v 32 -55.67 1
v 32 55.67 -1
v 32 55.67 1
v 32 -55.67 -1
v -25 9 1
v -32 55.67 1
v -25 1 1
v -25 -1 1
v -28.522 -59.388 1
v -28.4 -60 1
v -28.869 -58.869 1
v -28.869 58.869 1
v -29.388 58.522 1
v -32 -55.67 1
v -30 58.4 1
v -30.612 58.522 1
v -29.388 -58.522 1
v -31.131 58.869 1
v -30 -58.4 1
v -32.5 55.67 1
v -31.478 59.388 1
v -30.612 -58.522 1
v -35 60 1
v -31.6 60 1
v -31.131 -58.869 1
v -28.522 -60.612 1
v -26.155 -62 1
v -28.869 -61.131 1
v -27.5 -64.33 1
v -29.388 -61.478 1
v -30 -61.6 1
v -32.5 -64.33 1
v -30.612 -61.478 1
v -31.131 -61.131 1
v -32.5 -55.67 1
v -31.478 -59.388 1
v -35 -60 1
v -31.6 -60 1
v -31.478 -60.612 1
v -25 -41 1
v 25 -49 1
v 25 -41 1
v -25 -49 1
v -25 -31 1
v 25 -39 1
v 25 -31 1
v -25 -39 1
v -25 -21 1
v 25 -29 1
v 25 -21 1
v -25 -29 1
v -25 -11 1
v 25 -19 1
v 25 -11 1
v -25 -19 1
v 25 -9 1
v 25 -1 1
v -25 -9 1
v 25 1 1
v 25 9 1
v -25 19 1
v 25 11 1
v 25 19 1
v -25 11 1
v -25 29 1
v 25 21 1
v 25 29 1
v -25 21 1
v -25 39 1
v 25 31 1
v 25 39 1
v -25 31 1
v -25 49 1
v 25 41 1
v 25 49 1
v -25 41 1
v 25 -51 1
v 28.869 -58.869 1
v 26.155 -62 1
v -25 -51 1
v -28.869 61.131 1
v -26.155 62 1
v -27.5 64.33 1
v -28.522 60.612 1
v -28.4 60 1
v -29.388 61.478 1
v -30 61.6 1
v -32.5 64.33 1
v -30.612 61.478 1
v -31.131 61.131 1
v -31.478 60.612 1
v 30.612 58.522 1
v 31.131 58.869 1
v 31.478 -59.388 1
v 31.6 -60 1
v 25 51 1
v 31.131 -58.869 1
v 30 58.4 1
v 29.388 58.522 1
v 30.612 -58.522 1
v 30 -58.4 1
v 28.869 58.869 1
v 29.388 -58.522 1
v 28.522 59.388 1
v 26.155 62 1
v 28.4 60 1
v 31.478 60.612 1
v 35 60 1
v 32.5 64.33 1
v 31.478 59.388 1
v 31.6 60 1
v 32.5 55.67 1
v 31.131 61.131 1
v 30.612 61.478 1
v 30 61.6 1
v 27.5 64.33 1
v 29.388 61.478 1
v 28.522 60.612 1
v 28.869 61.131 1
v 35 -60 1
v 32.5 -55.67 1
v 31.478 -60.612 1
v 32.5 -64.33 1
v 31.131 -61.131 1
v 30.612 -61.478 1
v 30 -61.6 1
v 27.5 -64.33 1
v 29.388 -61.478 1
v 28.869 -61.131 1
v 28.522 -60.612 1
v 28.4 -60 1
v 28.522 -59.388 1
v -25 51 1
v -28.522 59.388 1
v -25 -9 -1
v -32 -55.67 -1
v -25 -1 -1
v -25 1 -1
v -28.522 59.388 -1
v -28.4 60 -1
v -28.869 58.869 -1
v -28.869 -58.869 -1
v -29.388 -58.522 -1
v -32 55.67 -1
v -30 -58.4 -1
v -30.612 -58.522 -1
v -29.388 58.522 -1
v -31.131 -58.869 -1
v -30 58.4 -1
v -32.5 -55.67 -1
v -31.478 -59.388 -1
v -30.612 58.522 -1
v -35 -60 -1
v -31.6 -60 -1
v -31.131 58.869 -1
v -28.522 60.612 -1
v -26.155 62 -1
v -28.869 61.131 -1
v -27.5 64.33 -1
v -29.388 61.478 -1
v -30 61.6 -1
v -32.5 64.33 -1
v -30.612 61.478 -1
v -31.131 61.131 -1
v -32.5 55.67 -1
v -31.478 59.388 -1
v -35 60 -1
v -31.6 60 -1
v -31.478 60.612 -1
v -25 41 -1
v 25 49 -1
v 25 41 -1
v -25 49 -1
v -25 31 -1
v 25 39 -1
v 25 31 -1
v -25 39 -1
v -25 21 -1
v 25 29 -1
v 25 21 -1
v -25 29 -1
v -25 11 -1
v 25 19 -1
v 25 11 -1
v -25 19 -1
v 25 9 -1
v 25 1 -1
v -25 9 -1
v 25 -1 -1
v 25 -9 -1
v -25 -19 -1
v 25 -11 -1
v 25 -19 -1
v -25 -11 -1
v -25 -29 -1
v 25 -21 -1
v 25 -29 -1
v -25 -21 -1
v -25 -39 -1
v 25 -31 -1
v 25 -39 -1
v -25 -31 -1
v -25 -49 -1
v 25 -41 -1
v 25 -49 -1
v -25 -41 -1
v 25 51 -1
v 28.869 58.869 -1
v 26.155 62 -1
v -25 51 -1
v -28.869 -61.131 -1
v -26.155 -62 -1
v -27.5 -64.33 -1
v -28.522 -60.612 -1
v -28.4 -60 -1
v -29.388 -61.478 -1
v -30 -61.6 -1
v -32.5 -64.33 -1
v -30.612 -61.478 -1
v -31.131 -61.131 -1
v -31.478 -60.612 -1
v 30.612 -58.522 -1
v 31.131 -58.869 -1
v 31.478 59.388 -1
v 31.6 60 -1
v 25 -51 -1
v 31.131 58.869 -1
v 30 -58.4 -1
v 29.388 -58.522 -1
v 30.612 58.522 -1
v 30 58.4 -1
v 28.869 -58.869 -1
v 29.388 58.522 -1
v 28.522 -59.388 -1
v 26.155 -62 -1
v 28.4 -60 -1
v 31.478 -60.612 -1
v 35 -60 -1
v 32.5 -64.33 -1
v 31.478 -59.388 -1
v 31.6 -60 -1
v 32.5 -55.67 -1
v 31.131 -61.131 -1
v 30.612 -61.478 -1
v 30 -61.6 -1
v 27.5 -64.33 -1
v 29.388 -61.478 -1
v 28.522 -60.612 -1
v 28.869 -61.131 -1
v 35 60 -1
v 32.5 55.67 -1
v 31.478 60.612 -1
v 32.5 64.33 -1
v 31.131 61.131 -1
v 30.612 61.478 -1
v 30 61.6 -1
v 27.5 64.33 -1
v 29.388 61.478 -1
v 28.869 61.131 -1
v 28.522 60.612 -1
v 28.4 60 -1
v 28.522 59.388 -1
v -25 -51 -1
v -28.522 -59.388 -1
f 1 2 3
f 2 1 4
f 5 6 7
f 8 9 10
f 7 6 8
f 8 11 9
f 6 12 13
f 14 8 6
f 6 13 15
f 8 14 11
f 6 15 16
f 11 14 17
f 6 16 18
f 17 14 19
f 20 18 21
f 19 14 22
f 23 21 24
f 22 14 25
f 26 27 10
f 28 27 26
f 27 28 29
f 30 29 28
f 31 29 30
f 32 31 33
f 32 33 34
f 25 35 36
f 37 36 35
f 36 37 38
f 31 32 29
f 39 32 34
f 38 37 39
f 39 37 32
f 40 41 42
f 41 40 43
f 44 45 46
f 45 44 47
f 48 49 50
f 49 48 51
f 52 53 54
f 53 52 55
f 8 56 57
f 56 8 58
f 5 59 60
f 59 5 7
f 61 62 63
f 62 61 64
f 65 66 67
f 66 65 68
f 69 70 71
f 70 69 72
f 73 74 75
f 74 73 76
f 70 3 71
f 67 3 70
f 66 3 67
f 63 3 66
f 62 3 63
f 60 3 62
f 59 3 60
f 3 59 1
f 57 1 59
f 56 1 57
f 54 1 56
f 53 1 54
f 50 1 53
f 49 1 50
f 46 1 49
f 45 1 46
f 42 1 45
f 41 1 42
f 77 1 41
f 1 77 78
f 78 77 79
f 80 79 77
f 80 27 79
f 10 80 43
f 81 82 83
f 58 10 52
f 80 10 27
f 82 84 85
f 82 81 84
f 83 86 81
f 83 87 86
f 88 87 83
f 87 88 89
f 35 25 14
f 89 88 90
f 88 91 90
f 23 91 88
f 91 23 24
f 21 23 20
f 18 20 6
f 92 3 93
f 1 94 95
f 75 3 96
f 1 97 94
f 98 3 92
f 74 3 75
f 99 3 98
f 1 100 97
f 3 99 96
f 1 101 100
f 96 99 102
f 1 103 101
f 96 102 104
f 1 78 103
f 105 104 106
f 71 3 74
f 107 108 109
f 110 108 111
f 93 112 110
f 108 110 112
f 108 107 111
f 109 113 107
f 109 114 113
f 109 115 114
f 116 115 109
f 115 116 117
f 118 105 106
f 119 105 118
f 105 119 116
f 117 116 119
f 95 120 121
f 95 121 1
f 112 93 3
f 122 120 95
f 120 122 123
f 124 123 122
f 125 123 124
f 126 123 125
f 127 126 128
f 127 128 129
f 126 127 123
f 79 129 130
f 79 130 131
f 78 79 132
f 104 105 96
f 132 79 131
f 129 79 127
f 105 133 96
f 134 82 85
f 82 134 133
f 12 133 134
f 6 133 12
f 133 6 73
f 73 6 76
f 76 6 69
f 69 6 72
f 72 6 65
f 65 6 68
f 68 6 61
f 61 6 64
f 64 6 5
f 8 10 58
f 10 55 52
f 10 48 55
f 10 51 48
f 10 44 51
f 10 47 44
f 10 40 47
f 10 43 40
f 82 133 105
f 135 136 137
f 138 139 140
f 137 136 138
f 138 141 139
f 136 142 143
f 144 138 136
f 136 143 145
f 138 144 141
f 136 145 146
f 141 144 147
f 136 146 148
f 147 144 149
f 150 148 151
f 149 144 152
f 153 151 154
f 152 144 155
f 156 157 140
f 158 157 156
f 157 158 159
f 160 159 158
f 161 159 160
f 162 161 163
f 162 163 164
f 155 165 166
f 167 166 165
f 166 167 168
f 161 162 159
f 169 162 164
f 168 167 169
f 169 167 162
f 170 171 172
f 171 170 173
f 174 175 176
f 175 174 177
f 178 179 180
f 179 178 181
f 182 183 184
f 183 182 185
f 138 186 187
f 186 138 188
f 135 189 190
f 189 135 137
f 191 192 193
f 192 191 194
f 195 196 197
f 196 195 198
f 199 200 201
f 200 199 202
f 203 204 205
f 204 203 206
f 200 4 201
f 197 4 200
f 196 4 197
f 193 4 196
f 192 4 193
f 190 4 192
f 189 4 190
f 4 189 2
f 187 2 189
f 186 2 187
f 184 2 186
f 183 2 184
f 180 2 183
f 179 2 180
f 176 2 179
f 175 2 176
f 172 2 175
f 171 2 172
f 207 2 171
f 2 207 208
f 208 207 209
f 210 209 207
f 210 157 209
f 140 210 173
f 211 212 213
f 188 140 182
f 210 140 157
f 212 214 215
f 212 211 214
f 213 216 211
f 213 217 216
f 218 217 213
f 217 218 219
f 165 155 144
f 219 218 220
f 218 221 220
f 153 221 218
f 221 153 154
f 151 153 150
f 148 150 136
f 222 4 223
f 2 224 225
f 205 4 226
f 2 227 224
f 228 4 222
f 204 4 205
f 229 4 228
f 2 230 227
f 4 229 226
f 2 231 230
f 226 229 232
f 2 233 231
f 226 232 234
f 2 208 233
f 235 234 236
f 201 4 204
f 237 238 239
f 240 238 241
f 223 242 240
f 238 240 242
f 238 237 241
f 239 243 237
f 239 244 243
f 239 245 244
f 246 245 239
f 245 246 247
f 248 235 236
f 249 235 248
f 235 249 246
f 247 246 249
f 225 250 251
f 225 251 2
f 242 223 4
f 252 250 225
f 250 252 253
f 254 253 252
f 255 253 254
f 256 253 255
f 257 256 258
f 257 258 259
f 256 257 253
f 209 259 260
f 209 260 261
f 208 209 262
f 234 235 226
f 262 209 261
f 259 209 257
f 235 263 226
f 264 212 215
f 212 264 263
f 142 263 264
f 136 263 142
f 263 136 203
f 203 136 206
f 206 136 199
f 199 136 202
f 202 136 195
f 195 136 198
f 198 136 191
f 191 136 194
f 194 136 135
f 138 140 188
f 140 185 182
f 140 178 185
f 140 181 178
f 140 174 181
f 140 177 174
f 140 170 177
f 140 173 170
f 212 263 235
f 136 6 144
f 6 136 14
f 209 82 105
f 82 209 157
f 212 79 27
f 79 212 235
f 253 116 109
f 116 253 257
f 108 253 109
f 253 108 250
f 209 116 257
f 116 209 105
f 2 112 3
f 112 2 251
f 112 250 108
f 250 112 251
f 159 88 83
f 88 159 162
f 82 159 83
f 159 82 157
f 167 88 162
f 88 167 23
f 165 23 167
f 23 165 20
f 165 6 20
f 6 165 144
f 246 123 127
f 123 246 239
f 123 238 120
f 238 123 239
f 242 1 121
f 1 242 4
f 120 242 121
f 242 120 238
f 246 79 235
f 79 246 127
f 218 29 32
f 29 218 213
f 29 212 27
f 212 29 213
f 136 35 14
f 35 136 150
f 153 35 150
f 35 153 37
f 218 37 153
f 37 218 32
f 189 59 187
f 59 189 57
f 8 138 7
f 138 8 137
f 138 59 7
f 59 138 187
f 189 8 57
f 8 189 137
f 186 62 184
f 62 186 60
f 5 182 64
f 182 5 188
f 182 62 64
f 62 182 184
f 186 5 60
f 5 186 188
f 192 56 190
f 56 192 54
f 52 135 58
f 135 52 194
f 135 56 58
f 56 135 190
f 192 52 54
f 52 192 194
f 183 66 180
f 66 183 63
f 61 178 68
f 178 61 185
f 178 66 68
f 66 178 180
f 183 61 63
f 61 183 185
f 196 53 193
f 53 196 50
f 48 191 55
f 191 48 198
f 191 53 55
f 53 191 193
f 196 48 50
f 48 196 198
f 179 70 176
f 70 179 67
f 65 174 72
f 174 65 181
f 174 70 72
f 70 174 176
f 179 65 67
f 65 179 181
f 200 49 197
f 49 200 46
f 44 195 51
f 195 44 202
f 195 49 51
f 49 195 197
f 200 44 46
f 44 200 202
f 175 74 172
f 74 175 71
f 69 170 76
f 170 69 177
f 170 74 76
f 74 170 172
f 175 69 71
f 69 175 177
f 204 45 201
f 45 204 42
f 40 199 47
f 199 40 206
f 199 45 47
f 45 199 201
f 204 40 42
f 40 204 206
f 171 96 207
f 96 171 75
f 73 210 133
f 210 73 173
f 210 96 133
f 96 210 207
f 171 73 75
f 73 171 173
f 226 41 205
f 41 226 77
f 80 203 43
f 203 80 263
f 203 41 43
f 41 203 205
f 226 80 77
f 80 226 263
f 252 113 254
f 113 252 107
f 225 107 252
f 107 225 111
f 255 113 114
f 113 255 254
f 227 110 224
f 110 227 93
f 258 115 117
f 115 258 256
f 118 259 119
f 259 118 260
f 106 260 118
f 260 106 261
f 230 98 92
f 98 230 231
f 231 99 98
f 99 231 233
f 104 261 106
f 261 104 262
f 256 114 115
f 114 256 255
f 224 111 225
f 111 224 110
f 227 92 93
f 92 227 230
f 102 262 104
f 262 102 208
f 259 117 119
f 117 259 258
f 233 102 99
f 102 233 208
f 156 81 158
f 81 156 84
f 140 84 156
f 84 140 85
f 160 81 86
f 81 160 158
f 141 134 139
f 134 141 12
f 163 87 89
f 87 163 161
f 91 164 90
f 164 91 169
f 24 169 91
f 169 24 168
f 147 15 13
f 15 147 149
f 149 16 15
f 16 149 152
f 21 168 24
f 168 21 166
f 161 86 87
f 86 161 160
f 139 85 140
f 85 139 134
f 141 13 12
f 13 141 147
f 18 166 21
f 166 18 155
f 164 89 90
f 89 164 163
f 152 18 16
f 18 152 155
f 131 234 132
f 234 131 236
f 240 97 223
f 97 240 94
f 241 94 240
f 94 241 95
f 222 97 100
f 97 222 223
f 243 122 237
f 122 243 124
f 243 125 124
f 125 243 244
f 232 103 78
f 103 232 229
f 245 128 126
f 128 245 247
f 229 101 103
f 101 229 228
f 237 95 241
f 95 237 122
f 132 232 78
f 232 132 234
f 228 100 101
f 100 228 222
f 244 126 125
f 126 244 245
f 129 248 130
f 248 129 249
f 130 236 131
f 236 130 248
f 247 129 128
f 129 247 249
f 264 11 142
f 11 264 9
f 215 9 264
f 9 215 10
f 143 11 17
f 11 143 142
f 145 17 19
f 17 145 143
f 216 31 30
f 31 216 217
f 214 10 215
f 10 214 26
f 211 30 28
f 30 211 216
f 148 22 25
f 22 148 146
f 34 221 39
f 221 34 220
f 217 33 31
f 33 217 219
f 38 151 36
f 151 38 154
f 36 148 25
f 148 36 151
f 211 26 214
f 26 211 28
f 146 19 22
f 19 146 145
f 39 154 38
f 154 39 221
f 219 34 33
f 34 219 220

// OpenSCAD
t=2;

difference() {
    union() {
        difference() {
            cube([60+2*t,120+2*t,2],center=true);
            //translate([0,0,t])cube([60,120,40+t],center=true);
        }

        translate([60/2,120/2,0]) cylinder(2,10/2,10/2,center=true,$fn=6);
        translate([-60/2,120/2,0]) cylinder(2,10/2,10/2,center=true,$fn=6);
        translate([60/2,-120/2,0]) cylinder(2,10/2,10/2,center=true,$fn=6);
        translate([-60/2,-120/2,0]) cylinder(2,10/2,10/2,center=true,$fn=6);
    }

    translate([60/2,120/2,-1]) cylinder(10,3.2/2,3.2/2,center=true,$fn=16);
    translate([-60/2,120/2,-1]) cylinder(10,3.2/2,3.2/2,center=true,$fn=16);
    translate([60/2,-120/2,-1]) cylinder(10,3.2/2,3.2/2,center=true,$fn=16);
    translate([-60/2,-120/2,-1]) cylinder(10,3.2/2,3.2/2,center=true,$fn=16);
    
    for(i=[0:10:100/2]) {
        translate([0,i,0]) cube([50,2,10], center=true);
        translate([0,-i,0]) cube([50,2,10], center=true);
    }
    
    // translate([15,60,0])rotate([90,0,0])cylinder(20,6/2,6/2,center=true);
    // translate([-15,60,0])rotate([90,0,0])cylinder(20,6/2,6/2,center=true);
}
